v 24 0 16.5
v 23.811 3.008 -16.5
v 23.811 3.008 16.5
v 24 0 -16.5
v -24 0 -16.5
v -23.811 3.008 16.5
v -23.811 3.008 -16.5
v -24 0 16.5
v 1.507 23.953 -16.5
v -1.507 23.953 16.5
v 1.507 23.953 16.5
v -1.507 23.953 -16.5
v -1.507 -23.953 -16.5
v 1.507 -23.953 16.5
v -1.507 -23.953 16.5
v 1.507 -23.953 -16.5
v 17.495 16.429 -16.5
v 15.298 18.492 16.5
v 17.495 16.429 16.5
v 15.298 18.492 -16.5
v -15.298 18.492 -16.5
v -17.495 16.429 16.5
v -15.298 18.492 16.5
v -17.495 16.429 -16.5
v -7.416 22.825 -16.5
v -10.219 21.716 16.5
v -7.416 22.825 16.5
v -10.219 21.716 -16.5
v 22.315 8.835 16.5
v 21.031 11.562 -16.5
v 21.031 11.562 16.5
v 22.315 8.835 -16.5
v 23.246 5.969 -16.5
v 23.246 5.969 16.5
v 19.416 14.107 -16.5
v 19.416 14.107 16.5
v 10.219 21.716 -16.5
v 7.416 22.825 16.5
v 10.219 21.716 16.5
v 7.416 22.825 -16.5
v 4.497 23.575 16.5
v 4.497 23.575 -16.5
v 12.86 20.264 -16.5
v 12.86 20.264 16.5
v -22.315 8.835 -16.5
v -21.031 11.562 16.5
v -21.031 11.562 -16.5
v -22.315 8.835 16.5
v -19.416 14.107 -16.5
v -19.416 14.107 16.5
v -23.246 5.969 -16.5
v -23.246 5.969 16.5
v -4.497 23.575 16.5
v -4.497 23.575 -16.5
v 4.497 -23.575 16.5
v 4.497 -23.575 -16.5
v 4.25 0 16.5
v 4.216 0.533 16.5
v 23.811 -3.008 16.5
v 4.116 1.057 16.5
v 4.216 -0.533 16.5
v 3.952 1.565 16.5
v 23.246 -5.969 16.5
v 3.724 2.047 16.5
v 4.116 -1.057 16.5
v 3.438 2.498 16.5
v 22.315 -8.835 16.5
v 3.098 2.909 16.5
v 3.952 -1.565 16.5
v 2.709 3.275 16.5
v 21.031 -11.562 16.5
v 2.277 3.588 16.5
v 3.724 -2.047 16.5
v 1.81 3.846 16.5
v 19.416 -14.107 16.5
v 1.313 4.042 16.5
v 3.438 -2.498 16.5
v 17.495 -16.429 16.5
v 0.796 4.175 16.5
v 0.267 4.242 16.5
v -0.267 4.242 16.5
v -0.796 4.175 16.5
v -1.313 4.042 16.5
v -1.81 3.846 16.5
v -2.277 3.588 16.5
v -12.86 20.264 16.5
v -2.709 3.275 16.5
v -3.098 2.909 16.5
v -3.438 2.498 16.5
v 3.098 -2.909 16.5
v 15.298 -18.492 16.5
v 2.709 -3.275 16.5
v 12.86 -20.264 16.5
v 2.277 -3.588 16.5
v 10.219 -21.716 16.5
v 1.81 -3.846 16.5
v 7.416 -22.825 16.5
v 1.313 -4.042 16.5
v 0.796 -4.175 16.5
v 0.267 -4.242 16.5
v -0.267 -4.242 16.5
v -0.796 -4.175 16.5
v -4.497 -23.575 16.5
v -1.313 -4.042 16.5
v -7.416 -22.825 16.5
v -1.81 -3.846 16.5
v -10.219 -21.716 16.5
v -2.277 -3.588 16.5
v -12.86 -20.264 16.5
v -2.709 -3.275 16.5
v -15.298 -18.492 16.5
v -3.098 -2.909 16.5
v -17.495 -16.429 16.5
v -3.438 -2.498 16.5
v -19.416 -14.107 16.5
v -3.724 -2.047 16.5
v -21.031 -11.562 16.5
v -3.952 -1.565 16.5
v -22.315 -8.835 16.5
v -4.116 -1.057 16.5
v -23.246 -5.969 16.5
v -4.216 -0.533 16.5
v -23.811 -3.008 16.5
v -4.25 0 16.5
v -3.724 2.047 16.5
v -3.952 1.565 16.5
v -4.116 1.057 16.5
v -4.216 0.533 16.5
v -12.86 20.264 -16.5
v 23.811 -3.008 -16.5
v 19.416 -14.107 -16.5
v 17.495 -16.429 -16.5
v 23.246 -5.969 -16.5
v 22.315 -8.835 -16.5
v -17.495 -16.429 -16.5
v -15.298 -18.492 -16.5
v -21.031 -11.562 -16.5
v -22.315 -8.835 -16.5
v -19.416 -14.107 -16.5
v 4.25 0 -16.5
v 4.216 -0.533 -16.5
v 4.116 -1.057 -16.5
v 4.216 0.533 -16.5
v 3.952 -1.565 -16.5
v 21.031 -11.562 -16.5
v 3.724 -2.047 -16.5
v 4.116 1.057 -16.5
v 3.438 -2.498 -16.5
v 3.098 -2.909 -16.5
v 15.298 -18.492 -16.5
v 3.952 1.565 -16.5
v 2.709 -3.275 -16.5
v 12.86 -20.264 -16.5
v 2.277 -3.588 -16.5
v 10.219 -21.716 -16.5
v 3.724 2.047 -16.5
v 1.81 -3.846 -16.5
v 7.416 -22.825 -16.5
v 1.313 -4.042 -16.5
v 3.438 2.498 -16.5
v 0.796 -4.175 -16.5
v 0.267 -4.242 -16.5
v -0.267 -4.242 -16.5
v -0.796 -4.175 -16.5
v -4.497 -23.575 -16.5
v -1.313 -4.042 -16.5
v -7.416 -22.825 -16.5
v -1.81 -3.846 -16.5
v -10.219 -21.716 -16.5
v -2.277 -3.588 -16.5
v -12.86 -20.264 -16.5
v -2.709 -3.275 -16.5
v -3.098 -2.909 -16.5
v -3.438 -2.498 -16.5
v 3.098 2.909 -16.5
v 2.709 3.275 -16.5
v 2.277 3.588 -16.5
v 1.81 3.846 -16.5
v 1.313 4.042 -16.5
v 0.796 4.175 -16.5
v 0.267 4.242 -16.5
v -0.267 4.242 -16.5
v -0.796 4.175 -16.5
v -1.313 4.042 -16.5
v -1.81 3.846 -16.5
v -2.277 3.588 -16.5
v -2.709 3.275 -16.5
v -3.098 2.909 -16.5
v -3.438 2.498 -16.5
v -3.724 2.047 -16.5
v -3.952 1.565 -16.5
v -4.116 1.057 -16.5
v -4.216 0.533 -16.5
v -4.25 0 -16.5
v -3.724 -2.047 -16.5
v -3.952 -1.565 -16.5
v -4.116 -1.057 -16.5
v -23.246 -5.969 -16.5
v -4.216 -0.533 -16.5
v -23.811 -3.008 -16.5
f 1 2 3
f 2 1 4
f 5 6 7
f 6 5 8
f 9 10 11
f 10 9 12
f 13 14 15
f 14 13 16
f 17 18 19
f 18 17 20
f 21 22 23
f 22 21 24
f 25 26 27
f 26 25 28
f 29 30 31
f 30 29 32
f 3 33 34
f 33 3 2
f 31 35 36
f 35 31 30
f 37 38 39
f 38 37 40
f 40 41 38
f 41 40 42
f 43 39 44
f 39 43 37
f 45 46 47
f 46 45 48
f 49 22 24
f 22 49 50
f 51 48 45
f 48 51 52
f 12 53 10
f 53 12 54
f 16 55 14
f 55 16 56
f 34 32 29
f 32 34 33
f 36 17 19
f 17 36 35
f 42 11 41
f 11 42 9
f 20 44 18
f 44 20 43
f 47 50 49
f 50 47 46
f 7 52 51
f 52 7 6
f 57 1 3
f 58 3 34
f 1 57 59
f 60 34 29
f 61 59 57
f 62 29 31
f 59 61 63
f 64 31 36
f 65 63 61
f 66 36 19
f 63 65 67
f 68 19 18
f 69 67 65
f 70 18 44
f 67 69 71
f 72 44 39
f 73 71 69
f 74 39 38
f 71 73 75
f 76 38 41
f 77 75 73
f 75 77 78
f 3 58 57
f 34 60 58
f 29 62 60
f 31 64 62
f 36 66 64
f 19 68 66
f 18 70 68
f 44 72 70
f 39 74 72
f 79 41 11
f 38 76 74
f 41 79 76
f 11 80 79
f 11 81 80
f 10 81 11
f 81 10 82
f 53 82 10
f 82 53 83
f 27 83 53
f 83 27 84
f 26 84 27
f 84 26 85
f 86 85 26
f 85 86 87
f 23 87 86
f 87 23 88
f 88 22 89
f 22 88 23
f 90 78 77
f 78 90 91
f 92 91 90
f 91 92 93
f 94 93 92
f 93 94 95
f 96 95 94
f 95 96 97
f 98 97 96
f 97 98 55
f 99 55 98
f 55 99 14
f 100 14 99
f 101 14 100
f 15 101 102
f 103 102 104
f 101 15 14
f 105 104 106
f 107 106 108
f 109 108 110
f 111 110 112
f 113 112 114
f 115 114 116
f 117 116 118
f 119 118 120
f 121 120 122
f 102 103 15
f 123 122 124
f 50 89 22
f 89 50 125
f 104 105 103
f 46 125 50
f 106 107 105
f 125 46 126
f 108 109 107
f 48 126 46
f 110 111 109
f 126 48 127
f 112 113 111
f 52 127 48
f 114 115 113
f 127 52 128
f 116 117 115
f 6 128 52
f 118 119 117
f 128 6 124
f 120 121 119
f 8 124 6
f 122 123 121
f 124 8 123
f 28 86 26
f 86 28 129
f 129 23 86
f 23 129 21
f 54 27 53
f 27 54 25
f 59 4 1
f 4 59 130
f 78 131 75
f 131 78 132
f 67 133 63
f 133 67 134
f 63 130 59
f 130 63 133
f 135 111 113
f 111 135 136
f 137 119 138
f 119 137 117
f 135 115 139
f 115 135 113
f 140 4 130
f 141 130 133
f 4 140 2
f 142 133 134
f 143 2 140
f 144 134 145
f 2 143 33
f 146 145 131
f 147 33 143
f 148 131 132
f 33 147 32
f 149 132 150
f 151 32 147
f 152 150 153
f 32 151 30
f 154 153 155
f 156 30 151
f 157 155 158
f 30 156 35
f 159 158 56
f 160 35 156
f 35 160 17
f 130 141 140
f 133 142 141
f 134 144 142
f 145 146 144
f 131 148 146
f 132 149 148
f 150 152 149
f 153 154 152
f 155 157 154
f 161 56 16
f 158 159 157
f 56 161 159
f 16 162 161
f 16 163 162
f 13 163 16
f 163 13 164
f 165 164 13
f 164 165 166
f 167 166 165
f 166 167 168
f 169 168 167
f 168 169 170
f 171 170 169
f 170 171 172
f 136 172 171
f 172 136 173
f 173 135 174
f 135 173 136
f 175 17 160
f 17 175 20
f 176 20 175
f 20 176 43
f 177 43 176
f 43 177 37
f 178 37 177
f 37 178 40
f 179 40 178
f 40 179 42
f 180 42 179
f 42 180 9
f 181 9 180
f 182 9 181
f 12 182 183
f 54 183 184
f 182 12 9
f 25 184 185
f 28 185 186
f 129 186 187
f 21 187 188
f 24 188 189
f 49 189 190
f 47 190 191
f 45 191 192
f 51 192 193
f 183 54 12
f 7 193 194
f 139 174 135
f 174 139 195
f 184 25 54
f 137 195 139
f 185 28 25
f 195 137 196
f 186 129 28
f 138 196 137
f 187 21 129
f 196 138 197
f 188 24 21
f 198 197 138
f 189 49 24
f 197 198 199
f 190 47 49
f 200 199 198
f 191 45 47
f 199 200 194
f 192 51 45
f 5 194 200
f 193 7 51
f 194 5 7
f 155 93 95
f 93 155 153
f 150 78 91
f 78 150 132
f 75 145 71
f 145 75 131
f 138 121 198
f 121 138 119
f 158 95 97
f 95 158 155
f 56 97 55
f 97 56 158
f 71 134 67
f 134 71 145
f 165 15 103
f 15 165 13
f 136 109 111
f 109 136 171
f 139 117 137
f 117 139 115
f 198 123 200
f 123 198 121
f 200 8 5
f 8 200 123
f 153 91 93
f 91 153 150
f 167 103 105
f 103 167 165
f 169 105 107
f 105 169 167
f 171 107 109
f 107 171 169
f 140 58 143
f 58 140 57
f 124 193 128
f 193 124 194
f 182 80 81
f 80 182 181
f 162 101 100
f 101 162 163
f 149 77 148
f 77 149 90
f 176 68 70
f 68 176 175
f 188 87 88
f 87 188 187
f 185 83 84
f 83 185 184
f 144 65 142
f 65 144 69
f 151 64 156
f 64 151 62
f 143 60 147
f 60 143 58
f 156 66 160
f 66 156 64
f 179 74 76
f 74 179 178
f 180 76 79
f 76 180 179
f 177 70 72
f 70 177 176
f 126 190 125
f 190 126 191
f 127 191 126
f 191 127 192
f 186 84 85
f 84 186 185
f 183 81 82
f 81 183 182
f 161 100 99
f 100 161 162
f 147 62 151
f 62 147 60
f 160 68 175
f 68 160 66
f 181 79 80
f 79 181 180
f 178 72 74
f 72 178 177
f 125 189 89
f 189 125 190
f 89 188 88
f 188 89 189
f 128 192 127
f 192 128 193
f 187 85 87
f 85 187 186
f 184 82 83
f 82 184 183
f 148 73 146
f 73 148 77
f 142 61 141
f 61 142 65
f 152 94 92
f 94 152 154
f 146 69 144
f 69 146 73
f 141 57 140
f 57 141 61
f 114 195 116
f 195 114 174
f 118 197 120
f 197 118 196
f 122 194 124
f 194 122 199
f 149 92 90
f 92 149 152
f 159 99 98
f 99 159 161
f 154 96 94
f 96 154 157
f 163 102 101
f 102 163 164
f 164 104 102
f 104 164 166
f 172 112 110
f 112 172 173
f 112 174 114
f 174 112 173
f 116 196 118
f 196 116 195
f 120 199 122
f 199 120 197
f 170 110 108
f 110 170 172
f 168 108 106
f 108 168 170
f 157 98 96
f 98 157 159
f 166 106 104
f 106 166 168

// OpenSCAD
$fn = 50;


difference() {
	union() {
		translate(v = [0, 0, -16.5000000000]) {
			cylinder(h = 33, r = 24.0000000000);
		}
	}
	union() {
		translate(v = [0, 0, -100.0000000000]) {
			cylinder(h = 200, r = 4.2500000000);
		}
	}
}
